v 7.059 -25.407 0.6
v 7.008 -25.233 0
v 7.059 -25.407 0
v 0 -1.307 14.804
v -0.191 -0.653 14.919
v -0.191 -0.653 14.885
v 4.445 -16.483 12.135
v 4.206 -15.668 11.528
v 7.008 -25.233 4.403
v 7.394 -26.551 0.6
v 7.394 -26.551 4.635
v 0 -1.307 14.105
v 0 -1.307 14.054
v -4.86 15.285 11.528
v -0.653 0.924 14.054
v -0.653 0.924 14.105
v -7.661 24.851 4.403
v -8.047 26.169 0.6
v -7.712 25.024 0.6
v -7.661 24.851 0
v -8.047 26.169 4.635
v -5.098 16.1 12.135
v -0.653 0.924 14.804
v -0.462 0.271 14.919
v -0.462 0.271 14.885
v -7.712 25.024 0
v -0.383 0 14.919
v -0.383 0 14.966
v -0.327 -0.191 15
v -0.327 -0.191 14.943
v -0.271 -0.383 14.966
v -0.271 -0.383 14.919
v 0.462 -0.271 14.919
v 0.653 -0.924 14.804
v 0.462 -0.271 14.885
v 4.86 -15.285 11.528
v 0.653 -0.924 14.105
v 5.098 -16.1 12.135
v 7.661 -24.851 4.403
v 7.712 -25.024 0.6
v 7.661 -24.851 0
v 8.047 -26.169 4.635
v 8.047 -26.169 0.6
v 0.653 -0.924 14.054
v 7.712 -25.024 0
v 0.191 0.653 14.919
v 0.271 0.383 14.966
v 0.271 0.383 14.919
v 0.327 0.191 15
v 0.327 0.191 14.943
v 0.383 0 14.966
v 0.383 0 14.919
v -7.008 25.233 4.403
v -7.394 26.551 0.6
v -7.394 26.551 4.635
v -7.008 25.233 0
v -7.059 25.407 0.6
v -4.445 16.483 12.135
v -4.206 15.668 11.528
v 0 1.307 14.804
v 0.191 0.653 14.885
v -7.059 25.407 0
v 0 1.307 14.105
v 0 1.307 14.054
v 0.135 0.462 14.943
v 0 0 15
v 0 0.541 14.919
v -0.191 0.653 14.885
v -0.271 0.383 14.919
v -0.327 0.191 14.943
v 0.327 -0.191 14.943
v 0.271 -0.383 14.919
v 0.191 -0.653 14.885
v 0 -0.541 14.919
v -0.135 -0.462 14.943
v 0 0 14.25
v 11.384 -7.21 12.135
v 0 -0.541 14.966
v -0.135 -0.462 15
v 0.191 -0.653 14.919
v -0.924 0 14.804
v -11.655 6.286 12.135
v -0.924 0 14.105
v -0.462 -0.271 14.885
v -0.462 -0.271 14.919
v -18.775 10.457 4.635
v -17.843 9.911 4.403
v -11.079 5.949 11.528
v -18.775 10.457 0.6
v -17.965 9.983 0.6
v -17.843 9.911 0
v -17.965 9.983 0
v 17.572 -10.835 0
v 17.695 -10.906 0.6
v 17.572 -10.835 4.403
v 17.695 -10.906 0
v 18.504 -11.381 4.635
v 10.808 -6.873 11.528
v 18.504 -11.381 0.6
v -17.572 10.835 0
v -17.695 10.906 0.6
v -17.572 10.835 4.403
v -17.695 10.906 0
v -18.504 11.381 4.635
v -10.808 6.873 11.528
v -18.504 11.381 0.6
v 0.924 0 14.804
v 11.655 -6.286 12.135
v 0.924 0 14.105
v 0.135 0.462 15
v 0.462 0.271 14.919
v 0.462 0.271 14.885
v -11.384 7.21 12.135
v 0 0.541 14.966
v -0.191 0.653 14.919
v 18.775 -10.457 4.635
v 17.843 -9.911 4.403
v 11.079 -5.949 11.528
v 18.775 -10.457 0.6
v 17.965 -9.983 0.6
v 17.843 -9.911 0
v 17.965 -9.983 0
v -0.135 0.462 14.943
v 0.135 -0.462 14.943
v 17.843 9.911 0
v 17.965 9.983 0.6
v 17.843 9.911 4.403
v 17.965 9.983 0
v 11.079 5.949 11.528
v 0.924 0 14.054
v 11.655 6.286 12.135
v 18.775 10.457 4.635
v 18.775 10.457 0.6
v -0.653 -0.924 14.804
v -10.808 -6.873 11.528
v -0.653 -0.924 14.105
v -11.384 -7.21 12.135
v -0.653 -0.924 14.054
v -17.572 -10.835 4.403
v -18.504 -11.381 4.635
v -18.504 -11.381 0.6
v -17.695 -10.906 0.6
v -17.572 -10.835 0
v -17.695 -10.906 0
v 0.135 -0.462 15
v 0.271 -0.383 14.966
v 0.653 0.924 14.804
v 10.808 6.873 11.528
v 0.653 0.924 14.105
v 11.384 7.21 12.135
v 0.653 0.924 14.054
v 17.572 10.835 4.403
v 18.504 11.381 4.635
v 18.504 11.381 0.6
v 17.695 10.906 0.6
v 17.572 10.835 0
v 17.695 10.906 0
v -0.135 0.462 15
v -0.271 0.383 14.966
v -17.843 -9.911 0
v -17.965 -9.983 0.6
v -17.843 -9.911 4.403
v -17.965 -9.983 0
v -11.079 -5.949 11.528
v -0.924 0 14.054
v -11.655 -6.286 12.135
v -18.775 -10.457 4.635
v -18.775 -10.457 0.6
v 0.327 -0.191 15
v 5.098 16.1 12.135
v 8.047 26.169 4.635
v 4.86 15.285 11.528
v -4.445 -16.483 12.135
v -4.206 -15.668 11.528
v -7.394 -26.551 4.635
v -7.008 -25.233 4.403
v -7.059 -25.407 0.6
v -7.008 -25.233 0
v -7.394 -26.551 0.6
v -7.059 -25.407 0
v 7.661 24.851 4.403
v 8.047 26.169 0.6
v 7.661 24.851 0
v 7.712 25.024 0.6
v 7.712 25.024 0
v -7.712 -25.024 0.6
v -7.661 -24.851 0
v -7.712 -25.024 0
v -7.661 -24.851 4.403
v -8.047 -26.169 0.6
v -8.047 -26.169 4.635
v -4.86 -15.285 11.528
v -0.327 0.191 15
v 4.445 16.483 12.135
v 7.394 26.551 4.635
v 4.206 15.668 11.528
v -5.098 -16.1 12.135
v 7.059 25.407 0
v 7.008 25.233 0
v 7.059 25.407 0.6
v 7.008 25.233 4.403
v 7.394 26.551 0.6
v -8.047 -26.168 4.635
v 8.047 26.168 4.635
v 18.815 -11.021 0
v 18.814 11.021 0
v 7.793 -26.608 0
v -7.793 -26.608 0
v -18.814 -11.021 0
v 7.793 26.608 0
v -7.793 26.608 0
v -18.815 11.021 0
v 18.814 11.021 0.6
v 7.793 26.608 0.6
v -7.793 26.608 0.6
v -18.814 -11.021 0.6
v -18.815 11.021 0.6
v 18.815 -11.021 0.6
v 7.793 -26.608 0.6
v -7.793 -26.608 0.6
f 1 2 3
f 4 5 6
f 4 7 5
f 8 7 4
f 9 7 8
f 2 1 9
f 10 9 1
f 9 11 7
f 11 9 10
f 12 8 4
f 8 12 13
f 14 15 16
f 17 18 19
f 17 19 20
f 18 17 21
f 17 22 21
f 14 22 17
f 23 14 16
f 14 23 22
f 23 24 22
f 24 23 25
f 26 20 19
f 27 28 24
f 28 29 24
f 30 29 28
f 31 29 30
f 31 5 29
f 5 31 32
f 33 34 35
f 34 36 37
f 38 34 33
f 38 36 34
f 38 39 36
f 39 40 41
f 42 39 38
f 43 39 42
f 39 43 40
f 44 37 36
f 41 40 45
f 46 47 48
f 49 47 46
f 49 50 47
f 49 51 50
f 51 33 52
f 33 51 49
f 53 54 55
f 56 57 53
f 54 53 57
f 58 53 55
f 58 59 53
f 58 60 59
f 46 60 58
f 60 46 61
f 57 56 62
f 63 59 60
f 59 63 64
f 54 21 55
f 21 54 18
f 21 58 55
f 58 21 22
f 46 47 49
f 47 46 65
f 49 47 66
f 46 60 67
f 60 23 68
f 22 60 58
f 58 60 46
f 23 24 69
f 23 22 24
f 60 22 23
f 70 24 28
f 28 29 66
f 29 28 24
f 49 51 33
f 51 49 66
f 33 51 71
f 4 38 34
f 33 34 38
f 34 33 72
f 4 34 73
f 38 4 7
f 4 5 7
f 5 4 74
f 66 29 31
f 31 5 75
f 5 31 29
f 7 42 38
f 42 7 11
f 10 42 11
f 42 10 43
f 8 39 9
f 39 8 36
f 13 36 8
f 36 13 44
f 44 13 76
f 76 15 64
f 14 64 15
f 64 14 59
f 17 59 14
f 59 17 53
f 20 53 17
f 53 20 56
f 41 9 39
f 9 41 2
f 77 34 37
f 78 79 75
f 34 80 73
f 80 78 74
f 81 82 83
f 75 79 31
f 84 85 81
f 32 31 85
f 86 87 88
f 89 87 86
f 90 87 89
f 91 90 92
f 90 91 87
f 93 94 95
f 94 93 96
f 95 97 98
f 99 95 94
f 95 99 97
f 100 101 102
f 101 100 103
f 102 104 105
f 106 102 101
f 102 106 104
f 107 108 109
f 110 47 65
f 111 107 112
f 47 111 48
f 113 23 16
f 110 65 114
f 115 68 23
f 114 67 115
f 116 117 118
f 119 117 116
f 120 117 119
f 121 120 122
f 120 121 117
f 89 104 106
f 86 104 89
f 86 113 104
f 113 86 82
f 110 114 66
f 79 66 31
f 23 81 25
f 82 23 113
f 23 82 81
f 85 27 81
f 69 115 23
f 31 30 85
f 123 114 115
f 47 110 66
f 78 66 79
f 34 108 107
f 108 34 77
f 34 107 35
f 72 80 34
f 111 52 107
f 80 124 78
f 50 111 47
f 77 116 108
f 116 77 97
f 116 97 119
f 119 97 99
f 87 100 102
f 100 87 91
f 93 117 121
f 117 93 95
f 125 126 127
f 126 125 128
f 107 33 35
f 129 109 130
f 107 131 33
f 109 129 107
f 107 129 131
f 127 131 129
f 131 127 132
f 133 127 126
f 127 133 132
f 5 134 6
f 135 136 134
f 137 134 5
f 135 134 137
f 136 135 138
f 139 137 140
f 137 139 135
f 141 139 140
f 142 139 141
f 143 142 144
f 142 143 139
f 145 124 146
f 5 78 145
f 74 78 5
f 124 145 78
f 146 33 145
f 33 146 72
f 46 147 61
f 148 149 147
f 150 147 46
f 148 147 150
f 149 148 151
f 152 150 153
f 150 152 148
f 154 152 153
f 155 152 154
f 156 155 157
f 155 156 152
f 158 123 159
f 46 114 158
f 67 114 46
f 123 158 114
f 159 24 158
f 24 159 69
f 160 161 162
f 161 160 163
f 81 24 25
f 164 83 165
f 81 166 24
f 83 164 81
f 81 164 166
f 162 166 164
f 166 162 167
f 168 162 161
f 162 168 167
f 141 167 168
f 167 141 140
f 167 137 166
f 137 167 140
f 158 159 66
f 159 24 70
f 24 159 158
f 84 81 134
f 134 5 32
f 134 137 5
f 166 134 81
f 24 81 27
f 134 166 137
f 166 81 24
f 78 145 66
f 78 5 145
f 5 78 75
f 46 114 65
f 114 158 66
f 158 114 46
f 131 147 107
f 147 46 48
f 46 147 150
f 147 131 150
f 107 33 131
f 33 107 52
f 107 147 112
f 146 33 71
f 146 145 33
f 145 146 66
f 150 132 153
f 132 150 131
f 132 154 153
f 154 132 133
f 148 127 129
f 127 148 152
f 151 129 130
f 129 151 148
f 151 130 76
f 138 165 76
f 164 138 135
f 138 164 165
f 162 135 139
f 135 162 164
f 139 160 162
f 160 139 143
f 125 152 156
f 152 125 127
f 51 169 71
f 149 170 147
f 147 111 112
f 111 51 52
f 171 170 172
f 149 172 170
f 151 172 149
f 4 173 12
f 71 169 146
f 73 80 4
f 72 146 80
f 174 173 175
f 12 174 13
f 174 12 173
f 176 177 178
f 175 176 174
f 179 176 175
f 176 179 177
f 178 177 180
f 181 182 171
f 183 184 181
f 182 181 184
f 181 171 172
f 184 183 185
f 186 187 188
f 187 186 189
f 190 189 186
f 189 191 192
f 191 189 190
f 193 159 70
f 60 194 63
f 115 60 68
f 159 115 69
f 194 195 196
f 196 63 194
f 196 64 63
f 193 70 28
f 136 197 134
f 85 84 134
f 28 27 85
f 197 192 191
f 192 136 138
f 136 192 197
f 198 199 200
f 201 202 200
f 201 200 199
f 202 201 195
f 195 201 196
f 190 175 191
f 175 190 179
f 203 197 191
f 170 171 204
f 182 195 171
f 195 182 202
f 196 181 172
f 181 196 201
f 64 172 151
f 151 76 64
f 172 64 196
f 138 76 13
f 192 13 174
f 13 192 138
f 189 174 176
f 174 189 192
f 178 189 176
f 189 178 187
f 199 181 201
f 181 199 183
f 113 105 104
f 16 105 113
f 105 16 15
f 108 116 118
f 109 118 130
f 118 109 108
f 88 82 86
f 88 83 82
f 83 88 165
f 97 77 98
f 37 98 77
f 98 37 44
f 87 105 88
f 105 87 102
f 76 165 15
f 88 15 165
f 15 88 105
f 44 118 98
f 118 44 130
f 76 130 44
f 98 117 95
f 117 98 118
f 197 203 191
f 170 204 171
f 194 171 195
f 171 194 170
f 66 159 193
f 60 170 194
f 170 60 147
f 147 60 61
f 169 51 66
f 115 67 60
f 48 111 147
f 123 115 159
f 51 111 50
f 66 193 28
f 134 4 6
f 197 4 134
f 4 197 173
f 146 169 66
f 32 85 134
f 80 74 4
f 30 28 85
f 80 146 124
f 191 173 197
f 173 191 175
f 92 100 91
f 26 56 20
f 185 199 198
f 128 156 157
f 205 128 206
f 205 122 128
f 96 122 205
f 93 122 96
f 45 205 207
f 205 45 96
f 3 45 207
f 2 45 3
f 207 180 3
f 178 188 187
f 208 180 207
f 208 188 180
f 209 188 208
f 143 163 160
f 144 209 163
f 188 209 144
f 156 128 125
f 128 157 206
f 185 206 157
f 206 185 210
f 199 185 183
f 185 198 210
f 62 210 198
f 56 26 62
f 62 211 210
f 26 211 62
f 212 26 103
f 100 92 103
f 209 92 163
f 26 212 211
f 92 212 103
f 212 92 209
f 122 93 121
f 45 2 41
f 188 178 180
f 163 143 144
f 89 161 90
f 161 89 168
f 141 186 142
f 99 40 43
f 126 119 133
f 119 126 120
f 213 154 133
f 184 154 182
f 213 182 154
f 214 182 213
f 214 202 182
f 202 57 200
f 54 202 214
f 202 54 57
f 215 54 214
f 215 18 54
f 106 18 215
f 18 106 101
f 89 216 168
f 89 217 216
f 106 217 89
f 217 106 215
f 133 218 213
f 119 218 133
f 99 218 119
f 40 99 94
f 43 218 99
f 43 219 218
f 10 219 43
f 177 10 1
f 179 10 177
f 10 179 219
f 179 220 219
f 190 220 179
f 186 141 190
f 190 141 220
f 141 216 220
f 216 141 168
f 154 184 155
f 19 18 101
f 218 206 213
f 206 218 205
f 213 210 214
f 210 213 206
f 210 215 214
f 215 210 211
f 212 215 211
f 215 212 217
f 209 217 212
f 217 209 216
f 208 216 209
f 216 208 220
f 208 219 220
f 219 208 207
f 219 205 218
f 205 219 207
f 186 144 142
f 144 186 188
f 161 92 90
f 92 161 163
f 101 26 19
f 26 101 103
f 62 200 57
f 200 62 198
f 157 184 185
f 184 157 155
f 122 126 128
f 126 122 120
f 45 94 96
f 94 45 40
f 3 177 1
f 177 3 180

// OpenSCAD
$fa = 0.2; // Set the angle precision
$fs = 0.5;
    $fn = 10;

module arc(radius, angle, height) {
    render()
    rotate([0, 90, 0])
    linear_extrude(height = height, center = true)
        difference() {
            circle(radius);
            circle(radius - 1.5);
        }
}

module glass_dome(radius, height, num_rotations) {
    rotate(360/2/num_rotations)
    for (i = [0:num_rotations-1]) {
        rotate(i * 360 / num_rotations)
            scale([1, 1, height/radius])
                arc(radius, 45, 1);
    }
}

module glass(radius, height, num_rotations) {
    hull()
    rotate(360/2/num_rotations)
    for (i = [0:num_rotations-1]) {
        rotate(i * 360 / num_rotations)
            scale([1, 1, height/radius])
                arc(radius, 45, 1);
    }
}

module base_octagon(radius) {
    $fn = 8;
    linear_extrude(height = 0.6, center = false)
    rotate(360/2/8)
    difference() {
        circle(radius-1.2);
        circle(radius-2.5);
    }
}

radius = 30;
height = 15;
num_rotations = 8;
scale([1/sqrt(2), 1, 1])
difference() {
    union() {
        *glass(radius-1, height-0.5, num_rotations);
        glass_dome(radius, height, num_rotations);
        base_octagon(radius);
    }
    translate([0, 0, -height+height*0.15])
        cube([2*radius, 2*radius, height*1.7], center = true);
}

    
            
